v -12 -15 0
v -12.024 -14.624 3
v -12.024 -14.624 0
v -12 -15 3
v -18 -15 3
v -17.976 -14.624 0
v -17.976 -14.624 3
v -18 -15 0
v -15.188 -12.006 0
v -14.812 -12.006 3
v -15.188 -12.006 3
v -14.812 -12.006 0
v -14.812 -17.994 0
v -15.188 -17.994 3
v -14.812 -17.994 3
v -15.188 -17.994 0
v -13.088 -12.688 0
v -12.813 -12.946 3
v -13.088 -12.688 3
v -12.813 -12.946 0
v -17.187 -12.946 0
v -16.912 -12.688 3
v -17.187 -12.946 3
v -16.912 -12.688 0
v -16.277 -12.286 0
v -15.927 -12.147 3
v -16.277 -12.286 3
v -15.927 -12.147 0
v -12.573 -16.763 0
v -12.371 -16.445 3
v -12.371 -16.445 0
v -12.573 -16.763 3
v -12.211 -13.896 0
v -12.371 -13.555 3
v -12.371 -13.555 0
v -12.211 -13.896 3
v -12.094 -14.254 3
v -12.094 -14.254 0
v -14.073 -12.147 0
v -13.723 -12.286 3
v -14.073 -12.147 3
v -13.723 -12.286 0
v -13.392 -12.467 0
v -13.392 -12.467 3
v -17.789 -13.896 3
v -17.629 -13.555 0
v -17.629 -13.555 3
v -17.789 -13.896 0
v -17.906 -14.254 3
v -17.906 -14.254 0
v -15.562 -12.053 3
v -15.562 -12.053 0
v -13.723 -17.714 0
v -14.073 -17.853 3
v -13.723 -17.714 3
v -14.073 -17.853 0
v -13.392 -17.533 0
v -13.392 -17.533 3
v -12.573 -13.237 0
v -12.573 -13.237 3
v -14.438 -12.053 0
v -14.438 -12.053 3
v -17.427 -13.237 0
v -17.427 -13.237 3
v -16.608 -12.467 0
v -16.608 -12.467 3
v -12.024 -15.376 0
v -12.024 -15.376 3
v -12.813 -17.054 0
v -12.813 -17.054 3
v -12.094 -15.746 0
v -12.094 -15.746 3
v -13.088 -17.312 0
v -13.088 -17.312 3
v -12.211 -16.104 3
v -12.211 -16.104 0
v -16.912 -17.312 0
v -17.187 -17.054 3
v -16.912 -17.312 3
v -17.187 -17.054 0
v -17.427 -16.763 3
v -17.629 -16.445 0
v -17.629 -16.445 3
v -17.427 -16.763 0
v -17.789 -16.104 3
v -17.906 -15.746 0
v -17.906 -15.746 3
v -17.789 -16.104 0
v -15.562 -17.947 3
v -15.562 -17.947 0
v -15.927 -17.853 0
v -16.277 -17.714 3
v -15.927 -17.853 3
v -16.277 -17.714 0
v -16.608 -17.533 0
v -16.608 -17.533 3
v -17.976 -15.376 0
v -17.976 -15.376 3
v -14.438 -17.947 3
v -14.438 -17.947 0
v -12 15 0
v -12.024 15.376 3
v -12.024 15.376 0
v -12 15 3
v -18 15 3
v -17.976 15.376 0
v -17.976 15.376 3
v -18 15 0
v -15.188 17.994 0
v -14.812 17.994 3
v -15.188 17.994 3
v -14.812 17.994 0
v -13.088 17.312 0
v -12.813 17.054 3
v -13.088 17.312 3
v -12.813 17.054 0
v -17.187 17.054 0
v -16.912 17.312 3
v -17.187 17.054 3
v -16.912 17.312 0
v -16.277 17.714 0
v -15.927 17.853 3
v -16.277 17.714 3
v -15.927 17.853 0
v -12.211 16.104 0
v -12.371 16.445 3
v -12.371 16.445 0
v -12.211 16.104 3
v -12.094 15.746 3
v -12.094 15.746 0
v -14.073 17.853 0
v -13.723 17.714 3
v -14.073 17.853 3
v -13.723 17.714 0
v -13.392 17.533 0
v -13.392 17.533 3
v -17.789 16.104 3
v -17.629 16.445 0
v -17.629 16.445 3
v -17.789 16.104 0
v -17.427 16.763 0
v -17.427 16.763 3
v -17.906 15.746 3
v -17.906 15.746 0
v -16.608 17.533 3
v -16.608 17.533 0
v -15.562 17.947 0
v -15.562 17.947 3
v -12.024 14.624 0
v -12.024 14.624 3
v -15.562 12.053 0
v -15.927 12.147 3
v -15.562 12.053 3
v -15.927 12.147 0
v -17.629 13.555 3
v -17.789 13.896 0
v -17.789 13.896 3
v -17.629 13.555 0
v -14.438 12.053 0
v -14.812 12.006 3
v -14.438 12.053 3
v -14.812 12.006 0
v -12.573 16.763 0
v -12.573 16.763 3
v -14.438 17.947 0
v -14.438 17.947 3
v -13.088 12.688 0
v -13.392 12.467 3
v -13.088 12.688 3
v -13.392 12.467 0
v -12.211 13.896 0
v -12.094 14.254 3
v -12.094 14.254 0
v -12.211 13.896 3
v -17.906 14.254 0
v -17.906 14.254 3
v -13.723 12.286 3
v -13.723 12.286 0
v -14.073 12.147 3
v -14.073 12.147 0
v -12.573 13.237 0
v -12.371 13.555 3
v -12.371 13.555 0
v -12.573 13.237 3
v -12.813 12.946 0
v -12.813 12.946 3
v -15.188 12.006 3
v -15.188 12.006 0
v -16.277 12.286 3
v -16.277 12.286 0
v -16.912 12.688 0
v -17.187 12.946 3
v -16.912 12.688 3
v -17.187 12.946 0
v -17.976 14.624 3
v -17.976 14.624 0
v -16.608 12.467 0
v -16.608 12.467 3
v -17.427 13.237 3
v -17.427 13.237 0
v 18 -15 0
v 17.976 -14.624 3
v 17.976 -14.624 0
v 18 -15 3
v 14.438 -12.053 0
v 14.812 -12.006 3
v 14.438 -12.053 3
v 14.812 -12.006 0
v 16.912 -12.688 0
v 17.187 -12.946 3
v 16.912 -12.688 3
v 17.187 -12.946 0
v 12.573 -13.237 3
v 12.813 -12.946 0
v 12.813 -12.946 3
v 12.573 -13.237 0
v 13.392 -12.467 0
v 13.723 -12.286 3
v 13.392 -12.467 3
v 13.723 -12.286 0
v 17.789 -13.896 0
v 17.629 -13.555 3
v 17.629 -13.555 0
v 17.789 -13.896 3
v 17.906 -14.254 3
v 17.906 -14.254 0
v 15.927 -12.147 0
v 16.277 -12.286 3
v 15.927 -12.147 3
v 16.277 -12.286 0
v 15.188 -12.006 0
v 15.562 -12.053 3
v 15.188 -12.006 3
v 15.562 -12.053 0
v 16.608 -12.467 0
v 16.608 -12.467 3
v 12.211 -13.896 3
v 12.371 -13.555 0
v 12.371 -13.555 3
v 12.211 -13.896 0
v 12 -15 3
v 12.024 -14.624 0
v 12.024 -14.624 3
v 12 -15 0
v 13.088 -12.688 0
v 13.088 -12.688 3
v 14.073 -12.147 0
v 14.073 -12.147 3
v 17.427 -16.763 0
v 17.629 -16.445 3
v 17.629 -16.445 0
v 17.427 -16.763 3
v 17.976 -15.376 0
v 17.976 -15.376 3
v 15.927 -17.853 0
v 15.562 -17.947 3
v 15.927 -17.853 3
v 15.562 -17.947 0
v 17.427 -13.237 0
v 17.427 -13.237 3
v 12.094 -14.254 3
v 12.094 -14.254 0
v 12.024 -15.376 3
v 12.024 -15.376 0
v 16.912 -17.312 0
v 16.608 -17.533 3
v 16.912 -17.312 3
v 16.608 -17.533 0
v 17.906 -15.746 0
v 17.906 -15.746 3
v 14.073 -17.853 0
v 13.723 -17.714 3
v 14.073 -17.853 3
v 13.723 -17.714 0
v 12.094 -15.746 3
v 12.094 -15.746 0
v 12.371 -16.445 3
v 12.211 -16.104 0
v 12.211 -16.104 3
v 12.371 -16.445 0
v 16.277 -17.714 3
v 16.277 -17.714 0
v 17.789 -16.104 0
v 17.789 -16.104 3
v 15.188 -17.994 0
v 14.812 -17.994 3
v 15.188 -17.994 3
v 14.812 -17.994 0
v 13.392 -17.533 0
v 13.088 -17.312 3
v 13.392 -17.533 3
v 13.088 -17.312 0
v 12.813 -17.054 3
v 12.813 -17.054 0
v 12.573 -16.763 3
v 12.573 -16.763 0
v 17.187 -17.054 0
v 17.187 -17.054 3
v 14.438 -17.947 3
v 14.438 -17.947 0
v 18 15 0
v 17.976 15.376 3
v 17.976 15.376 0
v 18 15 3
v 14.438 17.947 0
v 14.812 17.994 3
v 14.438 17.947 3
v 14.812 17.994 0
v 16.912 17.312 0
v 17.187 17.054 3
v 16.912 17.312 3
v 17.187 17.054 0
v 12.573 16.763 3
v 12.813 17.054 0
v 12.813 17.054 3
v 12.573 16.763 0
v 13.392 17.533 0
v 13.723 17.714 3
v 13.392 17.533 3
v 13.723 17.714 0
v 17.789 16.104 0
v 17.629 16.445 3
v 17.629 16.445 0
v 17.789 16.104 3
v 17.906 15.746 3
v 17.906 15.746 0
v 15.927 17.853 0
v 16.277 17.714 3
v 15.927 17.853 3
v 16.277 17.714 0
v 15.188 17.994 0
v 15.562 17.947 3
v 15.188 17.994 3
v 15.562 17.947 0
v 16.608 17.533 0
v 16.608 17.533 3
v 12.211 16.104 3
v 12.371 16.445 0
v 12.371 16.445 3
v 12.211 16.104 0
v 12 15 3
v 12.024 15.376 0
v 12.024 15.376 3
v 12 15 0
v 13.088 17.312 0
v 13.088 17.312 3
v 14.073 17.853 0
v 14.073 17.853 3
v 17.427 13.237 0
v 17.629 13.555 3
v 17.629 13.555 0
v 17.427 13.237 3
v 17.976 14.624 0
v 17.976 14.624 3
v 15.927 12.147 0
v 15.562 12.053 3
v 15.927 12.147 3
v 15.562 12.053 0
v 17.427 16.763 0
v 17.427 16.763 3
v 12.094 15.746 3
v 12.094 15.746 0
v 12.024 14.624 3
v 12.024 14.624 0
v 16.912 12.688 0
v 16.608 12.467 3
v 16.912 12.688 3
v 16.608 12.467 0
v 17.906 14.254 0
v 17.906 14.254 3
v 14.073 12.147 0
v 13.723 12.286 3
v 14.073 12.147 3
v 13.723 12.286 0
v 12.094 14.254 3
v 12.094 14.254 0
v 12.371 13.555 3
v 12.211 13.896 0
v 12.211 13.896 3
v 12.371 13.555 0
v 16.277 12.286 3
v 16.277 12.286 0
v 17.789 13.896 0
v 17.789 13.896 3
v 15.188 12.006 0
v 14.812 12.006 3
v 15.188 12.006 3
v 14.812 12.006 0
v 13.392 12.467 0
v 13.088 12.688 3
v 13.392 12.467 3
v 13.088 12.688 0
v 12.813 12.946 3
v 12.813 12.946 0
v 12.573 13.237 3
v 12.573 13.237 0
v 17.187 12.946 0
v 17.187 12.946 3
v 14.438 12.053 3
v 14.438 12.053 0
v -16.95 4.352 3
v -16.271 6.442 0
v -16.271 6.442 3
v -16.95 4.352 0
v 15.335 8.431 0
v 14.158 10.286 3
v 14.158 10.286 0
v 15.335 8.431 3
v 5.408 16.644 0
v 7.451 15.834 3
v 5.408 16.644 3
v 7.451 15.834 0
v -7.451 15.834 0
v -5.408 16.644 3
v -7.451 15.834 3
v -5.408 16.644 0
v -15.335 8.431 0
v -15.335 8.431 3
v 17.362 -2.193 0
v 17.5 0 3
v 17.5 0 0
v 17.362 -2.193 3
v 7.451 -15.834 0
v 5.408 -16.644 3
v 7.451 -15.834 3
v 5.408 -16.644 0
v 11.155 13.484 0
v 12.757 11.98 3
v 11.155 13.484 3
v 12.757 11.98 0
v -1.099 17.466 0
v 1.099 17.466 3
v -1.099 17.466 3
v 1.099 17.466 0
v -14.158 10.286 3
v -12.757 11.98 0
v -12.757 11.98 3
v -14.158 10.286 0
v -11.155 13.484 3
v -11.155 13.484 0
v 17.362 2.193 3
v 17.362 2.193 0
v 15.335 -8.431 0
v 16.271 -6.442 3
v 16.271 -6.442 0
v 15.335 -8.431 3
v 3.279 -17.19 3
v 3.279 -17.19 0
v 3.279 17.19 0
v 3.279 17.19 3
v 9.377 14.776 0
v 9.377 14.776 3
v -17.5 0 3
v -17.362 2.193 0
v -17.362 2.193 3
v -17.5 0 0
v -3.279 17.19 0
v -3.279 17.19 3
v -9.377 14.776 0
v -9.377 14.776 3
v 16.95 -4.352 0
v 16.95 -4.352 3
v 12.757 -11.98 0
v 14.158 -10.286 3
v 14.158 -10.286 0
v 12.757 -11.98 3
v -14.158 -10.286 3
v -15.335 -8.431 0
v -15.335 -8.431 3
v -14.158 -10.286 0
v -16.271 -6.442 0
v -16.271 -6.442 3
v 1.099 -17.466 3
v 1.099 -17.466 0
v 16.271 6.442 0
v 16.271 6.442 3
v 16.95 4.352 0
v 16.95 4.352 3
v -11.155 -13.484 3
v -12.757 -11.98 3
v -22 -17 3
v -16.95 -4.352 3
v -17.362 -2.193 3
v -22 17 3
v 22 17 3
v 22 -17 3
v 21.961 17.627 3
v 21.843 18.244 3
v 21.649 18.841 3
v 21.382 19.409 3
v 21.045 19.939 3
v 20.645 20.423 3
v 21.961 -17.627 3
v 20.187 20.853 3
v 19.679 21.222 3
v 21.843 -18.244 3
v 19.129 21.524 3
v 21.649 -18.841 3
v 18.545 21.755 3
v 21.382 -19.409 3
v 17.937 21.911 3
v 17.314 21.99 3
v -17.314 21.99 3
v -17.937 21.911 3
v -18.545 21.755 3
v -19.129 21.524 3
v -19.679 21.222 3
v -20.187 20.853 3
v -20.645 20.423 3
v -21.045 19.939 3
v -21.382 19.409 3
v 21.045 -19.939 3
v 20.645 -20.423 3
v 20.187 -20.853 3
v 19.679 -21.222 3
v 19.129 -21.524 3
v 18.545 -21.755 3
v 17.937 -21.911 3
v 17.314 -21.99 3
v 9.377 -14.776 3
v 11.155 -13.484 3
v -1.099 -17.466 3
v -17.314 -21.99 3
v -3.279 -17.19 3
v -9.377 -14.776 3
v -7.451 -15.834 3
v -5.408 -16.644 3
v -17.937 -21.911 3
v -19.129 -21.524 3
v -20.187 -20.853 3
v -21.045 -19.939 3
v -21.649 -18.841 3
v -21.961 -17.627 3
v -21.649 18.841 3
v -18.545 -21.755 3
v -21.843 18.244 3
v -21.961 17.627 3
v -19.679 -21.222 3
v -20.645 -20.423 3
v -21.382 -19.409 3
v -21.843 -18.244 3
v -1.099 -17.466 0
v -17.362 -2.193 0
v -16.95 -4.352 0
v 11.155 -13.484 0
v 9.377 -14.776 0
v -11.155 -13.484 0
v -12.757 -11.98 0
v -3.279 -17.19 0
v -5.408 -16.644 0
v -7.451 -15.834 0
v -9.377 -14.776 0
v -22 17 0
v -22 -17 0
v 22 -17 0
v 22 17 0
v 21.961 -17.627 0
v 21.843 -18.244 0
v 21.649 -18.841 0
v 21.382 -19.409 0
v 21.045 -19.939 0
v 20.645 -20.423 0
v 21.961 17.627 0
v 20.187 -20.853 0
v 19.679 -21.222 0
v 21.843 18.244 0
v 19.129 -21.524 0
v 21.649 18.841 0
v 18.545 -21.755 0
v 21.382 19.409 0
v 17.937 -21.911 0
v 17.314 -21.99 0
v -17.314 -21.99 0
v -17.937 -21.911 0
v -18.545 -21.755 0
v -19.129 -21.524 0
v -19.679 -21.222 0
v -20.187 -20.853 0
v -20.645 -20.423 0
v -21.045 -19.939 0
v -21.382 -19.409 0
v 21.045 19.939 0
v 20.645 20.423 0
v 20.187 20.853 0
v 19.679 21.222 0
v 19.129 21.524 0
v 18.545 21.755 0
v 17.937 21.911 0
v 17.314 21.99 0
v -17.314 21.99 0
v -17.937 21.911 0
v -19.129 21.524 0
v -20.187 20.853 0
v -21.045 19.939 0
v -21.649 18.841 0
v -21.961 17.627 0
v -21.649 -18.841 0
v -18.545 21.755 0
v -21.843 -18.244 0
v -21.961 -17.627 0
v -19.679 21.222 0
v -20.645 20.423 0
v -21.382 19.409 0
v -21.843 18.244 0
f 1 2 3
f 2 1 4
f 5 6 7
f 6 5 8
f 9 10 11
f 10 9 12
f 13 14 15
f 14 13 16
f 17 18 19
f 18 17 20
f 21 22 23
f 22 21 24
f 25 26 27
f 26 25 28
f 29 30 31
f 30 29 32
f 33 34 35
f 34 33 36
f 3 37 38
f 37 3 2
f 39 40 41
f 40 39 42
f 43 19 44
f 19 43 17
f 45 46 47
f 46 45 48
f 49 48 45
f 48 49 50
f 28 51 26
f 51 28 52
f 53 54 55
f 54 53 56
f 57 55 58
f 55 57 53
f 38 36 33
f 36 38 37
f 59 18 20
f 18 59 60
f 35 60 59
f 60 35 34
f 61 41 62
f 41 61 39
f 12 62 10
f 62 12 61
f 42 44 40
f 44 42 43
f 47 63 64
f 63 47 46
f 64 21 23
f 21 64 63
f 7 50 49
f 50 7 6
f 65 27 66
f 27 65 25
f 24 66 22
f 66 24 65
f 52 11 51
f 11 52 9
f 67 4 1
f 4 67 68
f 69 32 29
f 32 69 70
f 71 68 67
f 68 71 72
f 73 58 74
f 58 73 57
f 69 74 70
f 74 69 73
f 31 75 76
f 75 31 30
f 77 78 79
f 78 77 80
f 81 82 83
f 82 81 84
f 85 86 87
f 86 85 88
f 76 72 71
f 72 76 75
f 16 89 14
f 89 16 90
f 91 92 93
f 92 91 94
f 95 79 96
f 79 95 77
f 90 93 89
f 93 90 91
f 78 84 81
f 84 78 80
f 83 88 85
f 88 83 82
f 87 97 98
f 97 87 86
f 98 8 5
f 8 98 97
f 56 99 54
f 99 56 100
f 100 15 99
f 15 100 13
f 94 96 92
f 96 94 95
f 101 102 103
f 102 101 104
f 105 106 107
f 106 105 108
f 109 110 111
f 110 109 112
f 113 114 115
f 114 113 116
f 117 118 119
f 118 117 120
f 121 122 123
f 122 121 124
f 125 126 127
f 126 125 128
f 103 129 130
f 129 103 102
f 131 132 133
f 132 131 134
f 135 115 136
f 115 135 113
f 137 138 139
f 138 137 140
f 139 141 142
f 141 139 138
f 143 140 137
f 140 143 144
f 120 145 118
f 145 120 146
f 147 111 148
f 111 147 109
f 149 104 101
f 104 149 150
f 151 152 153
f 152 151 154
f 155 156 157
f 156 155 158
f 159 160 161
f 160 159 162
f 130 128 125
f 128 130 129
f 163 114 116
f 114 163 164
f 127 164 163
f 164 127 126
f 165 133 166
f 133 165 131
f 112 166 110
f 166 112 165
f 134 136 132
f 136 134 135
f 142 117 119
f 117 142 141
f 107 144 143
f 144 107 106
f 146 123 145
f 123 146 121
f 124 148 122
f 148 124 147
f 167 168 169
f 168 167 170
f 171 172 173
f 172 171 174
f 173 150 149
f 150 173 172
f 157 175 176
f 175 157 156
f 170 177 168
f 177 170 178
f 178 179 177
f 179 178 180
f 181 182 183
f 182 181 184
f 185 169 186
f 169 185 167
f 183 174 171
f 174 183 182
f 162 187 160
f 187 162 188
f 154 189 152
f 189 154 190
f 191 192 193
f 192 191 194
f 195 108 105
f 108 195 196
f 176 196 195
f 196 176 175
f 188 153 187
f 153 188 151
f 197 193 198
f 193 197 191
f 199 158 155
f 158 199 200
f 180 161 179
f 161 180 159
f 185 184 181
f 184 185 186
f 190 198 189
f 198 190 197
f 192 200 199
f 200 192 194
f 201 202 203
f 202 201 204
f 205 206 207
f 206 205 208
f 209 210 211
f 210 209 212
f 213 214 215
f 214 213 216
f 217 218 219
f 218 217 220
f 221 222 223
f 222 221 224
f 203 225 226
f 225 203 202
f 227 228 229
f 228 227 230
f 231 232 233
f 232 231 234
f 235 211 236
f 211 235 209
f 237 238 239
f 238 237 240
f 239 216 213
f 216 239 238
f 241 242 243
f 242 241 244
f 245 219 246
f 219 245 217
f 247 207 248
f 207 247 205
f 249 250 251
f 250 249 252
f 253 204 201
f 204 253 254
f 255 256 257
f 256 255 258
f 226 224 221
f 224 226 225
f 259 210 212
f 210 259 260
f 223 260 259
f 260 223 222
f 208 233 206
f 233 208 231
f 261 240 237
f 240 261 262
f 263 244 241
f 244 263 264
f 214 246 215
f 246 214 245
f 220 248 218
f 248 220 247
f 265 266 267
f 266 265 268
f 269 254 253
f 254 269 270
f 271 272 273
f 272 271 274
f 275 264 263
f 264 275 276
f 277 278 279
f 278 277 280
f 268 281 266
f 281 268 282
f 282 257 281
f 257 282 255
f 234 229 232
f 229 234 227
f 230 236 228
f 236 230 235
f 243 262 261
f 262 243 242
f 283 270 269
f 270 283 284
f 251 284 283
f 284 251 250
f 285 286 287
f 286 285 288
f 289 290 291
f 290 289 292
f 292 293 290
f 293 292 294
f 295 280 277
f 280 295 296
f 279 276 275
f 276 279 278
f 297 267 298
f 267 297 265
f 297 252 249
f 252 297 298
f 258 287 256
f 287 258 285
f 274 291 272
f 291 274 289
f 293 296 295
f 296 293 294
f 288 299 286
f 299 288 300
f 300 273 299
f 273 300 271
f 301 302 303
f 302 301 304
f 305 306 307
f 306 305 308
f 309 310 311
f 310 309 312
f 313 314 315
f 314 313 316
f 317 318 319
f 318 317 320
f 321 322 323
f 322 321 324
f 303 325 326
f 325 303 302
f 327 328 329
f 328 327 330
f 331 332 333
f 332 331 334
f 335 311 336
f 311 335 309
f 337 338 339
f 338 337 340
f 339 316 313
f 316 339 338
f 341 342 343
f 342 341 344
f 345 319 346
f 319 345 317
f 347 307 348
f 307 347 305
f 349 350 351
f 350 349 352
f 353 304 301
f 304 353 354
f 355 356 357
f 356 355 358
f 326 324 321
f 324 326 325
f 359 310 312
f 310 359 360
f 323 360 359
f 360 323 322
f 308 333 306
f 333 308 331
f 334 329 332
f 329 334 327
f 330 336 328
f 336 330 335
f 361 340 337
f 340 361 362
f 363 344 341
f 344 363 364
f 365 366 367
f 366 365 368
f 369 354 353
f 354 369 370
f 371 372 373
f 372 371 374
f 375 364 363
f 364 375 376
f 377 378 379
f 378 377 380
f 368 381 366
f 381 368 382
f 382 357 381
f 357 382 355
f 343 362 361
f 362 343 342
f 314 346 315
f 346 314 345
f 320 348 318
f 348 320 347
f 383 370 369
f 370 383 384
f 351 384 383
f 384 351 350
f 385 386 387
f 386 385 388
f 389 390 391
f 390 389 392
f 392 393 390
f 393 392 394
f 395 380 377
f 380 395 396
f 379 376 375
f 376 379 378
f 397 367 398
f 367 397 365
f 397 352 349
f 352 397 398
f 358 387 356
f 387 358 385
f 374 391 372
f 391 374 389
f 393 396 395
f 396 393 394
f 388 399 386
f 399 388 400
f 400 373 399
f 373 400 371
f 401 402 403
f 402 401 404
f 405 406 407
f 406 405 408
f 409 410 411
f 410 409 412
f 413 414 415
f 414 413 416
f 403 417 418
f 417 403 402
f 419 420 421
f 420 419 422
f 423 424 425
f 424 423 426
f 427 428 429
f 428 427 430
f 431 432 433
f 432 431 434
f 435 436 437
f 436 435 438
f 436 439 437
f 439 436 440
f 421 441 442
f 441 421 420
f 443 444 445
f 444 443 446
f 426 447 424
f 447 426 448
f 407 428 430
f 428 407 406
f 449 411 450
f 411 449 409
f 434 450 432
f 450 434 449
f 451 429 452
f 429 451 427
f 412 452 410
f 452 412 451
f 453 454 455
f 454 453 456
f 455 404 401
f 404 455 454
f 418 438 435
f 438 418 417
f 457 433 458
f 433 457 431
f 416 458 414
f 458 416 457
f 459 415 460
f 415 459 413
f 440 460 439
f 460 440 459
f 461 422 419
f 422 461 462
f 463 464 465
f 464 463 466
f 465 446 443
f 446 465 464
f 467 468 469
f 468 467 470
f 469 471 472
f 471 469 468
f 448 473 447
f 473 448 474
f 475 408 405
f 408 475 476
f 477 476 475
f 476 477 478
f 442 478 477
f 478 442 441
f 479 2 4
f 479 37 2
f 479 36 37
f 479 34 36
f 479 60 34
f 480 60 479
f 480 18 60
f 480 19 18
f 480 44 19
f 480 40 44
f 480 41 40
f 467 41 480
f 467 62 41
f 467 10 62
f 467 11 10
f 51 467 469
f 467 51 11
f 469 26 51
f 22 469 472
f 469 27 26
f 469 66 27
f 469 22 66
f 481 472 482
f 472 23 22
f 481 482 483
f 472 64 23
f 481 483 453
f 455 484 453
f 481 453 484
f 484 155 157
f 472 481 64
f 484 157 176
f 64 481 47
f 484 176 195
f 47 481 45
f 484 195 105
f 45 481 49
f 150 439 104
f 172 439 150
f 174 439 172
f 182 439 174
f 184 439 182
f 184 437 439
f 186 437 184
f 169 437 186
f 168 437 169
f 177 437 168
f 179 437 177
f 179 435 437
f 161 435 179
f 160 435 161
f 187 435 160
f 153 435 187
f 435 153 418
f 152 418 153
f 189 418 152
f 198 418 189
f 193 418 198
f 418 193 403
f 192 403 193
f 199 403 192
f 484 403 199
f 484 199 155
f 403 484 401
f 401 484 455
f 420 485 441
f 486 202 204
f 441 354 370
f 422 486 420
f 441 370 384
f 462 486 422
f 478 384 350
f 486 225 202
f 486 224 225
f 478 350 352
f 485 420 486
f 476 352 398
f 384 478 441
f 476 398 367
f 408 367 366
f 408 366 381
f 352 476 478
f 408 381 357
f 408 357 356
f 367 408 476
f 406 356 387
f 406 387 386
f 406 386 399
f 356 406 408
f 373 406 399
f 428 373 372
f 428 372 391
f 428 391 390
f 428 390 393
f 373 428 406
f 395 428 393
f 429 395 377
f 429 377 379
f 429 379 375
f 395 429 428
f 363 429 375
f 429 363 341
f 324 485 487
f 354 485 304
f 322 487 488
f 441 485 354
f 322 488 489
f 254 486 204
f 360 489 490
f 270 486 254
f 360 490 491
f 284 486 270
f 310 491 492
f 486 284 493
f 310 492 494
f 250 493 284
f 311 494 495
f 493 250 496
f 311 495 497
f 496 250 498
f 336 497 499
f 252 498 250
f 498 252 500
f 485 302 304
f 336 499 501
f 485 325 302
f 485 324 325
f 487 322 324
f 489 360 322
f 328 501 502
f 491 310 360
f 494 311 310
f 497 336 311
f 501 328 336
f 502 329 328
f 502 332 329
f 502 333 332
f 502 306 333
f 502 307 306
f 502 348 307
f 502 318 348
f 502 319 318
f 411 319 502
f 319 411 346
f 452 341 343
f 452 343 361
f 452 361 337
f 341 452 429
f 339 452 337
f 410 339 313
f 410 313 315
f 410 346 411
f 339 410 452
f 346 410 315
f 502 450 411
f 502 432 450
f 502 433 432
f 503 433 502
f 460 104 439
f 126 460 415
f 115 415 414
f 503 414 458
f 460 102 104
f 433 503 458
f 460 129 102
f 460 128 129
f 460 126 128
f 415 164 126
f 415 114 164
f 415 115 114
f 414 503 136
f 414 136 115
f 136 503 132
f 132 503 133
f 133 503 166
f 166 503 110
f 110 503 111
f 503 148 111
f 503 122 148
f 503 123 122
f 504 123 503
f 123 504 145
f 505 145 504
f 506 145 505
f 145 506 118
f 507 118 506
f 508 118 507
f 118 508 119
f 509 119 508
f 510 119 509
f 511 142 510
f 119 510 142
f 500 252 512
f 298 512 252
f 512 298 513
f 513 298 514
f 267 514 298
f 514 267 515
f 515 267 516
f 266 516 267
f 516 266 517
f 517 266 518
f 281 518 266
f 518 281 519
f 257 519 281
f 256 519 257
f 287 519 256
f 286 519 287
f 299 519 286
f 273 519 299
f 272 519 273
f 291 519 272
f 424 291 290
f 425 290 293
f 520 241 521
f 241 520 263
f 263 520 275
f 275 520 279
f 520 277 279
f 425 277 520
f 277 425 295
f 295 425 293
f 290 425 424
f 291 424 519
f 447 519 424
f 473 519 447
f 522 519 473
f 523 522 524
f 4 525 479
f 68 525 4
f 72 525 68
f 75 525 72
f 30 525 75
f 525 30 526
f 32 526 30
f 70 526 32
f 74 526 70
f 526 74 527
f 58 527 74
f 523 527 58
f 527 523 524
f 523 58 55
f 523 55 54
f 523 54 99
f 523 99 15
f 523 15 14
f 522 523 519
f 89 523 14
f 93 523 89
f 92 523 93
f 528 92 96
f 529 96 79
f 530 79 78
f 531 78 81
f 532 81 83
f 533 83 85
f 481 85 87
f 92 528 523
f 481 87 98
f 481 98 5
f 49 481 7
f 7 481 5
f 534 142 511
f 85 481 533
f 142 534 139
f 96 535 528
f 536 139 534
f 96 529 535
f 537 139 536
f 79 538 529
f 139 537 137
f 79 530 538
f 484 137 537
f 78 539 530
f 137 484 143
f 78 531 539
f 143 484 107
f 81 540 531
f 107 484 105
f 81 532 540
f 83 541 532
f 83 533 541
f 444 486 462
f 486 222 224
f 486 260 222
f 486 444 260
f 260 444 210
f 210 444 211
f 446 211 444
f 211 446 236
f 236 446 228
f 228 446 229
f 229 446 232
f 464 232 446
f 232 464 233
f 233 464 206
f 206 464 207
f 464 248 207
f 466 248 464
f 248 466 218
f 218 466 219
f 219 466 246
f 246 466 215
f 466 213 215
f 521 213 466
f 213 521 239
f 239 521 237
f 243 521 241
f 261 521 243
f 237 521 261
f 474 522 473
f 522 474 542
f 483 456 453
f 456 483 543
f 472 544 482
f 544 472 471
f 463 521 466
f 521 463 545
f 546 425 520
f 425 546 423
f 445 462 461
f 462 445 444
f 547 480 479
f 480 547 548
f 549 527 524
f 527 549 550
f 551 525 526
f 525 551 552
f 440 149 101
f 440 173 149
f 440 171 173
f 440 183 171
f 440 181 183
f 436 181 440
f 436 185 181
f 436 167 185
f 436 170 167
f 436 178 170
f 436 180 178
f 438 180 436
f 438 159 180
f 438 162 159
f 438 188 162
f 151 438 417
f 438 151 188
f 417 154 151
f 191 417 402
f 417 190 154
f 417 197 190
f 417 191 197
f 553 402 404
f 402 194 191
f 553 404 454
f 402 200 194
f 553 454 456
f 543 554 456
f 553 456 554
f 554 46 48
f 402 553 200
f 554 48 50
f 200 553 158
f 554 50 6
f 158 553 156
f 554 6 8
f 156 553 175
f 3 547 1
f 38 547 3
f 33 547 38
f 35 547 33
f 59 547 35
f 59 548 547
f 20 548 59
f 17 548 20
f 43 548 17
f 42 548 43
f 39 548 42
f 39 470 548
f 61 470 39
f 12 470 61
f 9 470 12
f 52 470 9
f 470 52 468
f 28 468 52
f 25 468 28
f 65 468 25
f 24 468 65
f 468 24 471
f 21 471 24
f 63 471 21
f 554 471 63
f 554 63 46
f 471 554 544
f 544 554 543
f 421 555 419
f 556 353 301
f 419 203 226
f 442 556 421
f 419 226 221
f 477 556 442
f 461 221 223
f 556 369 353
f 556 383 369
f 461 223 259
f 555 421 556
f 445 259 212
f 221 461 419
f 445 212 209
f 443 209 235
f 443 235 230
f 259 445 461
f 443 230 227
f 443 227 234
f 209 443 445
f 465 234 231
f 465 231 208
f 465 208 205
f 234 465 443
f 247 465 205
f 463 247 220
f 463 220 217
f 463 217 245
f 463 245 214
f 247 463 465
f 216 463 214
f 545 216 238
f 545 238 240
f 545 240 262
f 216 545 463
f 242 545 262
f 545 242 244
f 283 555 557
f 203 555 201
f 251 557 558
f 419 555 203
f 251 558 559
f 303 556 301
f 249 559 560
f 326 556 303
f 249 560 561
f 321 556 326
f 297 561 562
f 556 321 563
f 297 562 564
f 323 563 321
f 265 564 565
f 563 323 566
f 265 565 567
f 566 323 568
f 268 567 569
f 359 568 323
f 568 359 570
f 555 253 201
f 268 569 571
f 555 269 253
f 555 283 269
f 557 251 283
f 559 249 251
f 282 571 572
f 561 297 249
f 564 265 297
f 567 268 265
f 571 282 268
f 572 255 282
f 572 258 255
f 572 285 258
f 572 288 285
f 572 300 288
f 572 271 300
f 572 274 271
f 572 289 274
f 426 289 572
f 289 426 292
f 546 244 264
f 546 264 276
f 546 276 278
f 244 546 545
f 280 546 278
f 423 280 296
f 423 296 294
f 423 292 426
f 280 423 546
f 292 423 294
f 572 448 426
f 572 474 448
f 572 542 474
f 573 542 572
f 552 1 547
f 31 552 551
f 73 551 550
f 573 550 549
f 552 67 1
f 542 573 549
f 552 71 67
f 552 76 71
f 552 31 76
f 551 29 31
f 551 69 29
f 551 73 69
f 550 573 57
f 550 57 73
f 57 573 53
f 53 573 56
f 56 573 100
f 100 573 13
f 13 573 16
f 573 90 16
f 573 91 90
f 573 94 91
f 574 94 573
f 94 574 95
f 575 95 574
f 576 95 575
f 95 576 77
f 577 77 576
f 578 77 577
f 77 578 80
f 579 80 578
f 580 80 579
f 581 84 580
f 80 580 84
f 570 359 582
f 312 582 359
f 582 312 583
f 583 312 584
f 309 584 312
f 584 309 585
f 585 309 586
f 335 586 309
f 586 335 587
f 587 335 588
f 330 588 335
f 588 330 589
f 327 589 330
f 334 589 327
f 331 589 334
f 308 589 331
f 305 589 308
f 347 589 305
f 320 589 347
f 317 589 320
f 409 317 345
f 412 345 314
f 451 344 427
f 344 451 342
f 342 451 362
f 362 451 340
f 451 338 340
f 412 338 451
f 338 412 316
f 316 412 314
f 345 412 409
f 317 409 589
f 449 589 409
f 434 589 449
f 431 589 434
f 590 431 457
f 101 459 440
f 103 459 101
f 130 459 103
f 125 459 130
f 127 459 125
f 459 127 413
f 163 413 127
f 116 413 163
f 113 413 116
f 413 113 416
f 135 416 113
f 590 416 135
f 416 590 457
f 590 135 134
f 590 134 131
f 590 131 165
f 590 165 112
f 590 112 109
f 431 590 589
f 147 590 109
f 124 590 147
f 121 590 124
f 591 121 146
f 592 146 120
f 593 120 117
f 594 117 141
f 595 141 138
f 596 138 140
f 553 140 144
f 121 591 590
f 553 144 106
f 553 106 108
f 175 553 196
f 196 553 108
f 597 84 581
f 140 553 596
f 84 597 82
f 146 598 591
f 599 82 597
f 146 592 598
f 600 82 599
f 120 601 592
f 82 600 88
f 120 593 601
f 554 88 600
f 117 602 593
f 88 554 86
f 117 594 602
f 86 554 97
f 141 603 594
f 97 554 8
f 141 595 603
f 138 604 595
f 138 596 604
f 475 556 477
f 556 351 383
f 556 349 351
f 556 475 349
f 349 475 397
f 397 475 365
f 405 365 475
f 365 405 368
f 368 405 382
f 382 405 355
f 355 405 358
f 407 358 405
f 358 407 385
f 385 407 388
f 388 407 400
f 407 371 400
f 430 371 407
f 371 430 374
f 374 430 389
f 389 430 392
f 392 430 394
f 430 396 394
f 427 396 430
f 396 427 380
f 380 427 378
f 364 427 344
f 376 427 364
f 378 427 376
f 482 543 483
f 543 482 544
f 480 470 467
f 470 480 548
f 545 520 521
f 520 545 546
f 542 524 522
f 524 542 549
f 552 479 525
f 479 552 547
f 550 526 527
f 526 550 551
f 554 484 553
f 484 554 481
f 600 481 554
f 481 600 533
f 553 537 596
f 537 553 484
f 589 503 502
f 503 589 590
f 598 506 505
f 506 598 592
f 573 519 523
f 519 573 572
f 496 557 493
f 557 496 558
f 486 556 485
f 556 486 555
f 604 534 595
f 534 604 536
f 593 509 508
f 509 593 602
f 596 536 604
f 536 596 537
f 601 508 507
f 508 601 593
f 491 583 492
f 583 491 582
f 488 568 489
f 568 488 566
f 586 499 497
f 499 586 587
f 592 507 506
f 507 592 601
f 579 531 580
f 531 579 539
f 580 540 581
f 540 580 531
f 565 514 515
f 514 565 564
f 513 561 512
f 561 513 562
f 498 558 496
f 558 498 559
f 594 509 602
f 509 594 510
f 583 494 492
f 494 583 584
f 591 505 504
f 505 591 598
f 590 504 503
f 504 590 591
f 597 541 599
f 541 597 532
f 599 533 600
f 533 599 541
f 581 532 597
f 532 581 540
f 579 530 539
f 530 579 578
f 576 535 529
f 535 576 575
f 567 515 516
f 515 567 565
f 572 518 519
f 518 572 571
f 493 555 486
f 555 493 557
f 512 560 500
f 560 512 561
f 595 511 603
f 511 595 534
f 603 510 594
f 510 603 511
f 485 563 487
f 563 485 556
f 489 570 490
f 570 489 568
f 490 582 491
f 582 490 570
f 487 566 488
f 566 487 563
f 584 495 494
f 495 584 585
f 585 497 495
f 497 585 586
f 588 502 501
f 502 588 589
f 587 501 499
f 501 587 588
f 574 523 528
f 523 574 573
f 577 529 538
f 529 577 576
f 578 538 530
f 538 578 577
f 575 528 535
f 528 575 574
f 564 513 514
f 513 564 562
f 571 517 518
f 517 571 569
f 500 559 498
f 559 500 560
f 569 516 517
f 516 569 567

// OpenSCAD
$fn = 50;


difference() {
	union() {
		hull() {
			translate(v = [-17.0000000000, 17.0000000000, 0]) {
				cylinder(h = 3, r = 5);
			}
			translate(v = [17.0000000000, 17.0000000000, 0]) {
				cylinder(h = 3, r = 5);
			}
			translate(v = [-17.0000000000, -17.0000000000, 0]) {
				cylinder(h = 3, r = 5);
			}
			translate(v = [17.0000000000, -17.0000000000, 0]) {
				cylinder(h = 3, r = 5);
			}
		}
	}
	union() {
		#translate(v = [-15.0000000000, -15.0000000000, -100.0000000000]) {
			cylinder(h = 200, r = 3.0000000000);
		}
		#translate(v = [-15.0000000000, 15.0000000000, -100.0000000000]) {
			cylinder(h = 200, r = 3.0000000000);
		}
		#translate(v = [15.0000000000, -15.0000000000, -100.0000000000]) {
			cylinder(h = 200, r = 3.0000000000);
		}
		#translate(v = [15.0000000000, 15.0000000000, -100.0000000000]) {
			cylinder(h = 200, r = 3.0000000000);
		}
		#cylinder(h = 3, r = 17.5000000000);
	}
}
